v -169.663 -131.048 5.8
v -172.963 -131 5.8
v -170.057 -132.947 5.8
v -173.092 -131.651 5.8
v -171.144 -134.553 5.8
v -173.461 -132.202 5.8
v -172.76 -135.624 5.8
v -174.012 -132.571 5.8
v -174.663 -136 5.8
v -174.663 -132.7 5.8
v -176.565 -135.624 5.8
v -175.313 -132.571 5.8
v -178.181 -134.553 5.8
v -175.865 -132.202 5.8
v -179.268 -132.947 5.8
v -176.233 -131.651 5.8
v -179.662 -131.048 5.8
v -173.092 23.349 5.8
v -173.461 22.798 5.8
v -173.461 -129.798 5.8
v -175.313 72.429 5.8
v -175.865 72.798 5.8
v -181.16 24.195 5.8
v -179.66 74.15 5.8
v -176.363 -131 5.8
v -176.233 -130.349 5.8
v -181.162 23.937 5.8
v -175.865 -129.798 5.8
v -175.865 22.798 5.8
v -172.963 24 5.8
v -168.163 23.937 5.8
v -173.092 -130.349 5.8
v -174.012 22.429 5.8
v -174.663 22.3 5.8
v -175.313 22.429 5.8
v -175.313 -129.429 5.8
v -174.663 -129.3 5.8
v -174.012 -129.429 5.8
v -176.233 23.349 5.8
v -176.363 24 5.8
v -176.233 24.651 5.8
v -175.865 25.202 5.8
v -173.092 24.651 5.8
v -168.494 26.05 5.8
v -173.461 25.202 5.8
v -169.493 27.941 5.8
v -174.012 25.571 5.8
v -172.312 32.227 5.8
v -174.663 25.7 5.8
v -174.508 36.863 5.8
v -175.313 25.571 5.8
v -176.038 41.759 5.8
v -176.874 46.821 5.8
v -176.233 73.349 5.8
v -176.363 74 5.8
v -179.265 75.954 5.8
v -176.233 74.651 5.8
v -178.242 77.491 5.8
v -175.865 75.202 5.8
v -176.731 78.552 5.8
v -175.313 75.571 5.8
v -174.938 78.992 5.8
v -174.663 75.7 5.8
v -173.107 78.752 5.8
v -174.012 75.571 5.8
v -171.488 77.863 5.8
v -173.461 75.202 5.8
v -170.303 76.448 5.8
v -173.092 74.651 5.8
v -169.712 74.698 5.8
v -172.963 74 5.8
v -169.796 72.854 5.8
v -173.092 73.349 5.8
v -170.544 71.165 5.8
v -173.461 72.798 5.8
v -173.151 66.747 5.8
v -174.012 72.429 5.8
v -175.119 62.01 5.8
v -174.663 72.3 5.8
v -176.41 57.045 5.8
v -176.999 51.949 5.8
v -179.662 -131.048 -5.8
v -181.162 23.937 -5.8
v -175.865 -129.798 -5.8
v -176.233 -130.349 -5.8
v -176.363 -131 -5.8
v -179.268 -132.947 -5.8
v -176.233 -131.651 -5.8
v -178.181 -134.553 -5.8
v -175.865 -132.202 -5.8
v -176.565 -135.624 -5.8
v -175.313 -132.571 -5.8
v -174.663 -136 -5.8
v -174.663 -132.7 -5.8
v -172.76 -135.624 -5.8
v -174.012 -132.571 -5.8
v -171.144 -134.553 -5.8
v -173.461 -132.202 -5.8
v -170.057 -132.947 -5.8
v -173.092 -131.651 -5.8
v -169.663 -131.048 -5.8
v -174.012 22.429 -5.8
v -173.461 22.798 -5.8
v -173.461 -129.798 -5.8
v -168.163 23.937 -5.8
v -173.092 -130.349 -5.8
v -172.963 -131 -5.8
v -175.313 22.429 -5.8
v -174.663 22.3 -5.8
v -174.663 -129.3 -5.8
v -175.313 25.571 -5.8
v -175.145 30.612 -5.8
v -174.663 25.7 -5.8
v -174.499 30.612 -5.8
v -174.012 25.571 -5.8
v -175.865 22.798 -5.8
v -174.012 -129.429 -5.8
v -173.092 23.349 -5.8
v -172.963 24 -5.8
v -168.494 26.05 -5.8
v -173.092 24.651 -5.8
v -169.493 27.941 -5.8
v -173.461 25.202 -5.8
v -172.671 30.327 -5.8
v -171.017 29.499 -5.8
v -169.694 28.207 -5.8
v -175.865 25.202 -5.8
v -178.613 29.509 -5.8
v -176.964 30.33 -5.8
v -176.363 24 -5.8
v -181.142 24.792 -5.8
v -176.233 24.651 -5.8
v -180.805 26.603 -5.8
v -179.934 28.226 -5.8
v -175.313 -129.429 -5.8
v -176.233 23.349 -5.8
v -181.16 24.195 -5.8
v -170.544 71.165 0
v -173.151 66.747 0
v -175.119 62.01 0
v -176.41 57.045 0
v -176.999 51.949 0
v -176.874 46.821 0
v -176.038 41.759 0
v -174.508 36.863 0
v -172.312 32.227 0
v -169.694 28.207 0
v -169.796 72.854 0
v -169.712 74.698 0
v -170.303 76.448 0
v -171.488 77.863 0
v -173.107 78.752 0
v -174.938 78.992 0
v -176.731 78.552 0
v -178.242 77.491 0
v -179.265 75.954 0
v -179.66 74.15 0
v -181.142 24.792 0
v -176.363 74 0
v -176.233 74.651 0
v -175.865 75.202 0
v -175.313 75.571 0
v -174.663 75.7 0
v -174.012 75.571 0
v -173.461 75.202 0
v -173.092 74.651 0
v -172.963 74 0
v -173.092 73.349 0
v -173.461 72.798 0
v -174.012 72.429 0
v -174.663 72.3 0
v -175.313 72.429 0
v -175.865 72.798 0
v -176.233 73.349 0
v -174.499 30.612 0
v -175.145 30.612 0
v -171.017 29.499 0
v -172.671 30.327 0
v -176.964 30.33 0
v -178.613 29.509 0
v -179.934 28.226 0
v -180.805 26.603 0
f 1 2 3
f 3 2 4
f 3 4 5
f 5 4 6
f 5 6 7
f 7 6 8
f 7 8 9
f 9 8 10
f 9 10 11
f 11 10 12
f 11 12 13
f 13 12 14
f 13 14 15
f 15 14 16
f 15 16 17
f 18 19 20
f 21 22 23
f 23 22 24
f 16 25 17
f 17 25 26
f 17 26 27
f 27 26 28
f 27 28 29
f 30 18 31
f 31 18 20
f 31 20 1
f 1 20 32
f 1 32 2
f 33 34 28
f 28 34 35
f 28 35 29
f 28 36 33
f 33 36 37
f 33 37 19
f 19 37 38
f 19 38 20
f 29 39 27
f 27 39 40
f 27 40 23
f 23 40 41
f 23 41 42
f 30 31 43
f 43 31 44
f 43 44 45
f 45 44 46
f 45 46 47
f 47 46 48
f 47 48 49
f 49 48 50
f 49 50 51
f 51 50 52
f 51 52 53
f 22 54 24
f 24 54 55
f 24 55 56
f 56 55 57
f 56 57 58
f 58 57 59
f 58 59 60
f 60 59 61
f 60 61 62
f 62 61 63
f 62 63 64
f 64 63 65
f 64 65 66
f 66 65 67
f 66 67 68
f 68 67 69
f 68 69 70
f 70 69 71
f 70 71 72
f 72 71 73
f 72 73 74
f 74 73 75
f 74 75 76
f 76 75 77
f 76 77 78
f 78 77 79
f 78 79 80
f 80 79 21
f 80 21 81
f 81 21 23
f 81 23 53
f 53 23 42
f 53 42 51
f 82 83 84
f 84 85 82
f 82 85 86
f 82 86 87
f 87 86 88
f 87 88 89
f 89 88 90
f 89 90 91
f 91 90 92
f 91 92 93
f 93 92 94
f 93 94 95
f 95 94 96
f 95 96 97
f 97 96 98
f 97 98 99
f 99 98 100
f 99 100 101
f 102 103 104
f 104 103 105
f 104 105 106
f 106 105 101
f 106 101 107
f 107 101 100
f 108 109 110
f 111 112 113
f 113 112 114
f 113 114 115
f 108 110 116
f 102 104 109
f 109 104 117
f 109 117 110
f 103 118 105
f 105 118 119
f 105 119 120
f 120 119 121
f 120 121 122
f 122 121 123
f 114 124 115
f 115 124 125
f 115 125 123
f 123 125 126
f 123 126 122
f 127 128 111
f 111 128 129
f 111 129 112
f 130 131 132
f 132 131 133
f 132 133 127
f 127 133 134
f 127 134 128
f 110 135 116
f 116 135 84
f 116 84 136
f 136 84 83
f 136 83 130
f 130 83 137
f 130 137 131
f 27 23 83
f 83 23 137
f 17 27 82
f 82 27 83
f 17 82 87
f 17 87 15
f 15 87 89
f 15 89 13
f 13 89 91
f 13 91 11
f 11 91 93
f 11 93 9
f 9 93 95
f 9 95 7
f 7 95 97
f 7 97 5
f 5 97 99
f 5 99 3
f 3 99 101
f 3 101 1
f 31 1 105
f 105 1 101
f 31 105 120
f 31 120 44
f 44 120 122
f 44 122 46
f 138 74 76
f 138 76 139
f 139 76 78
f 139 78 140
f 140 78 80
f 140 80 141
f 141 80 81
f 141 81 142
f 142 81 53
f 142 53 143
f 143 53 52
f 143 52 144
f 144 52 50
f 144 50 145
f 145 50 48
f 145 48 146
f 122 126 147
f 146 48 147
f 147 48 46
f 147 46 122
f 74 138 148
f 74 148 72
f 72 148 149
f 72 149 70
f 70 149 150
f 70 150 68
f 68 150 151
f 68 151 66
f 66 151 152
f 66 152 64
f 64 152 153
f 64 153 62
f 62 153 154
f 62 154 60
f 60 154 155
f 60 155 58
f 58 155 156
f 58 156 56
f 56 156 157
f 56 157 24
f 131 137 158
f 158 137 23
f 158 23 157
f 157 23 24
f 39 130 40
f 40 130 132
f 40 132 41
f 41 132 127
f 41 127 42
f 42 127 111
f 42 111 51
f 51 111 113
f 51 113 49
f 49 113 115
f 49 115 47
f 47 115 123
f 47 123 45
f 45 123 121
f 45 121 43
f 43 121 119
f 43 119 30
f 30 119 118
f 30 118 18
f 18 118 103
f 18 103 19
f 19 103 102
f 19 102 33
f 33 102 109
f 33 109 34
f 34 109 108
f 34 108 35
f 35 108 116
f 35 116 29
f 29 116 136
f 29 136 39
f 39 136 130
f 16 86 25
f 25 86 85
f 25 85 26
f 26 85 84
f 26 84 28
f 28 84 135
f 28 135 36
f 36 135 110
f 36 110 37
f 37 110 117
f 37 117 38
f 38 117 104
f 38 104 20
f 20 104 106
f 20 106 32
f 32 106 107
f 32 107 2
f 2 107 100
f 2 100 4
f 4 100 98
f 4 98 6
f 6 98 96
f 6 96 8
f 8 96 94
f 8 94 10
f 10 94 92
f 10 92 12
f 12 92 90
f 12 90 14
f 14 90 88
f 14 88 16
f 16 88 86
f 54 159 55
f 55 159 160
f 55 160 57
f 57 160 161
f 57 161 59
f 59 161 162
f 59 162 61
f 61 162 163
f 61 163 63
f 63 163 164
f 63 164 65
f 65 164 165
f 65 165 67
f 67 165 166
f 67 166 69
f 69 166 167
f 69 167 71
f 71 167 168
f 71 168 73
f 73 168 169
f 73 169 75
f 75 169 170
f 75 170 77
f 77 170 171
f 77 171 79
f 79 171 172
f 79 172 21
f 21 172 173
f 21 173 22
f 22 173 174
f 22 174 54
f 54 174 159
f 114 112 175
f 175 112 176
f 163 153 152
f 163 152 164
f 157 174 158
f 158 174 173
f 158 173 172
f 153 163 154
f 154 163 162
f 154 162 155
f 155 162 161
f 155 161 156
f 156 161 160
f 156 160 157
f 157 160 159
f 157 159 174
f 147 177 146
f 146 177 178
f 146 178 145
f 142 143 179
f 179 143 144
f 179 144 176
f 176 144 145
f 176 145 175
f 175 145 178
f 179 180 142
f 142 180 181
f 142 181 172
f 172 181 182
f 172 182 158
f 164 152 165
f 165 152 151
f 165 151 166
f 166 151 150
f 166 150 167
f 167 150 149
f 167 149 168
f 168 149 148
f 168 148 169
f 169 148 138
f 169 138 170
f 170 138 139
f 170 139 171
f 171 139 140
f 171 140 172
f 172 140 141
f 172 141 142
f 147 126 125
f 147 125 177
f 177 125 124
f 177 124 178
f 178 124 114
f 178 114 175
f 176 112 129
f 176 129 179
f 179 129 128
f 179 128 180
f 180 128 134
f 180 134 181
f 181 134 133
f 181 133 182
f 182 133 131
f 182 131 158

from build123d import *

# Parameters (mm, degrees)
SKETCH_1_R          = 1.7
EXTRUDE_1_DEPTH     = 5.8
SKETCH_2_W          = 5.8
SKETCH_2_H          = 48.387548751
CUT_EXTRUDE_1_DEPTH = 279.6
FILLET_1_R          = 6


with BuildPart() as part:
    # 草图1 → 凸台-拉伸1 (new body, symmetric)
    with BuildSketch(Plane.XY):
        with BuildLine():
            Line((-181.16239443, 23.937096774), (-179.662464671, -131.048387097))
            ThreePointArc((-179.662464671, -131.048387097), (-174.662698808, -136), (-169.662932944, -131.048387097))
            Line((-169.662932944, -131.048387097), (-168.163003185, 23.937096774))
            ThreePointArc((-168.163003185, 23.937096774), (-168.494379467, 26.049838166), (-169.49346521, 27.940688267))
            ThreePointArc((-169.49346521, 27.940688267), (-177.025820297, 49.382777319), (-170.5438245, 71.165414592))
            ThreePointArc((-170.5438245, 71.165414592), (-173.107050096, 78.751837233), (-179.660448301, 74.15))
            Line((-179.660448301, 74.15), (-181.159773149, 24.195))
            ThreePointArc((-181.159773149, 24.195), (-181.162363098, 24.06606139), (-181.16239443, 23.937096774))
        make_face()
        with Locations((-174.662698808, 24)):
            Circle(SKETCH_1_R, mode=Mode.SUBTRACT)
        with Locations((-174.662698808, -131)):
            Circle(SKETCH_1_R, mode=Mode.SUBTRACT)
        with Locations((-174.662698808, 74)):
            Circle(SKETCH_1_R, mode=Mode.SUBTRACT)
    extrude(amount=EXTRUDE_1_DEPTH, both=True)

    # 草图2 → 切除-拉伸1 (cut)
    with BuildSketch(Plane(origin=(0, 0, 0), x_dir=(0, 0, -1), z_dir=(1, 0, 0))):
        with Locations((2.9, 54.806225625)):
            Rectangle(SKETCH_2_W, SKETCH_2_H)
    extrude(amount=-CUT_EXTRUDE_1_DEPTH, mode=Mode.SUBTRACT)

    # 圆角1
    fillet_1_edges = [part.edges().sort_by_distance(p)[0] for p in [
        (-180.967162918, 30.612451249, -2.9),
        (-171.349640462, 30.612451249, -2.9),
    ]]
    fillet(fillet_1_edges, radius=FILLET_1_R)


solid = part.part
